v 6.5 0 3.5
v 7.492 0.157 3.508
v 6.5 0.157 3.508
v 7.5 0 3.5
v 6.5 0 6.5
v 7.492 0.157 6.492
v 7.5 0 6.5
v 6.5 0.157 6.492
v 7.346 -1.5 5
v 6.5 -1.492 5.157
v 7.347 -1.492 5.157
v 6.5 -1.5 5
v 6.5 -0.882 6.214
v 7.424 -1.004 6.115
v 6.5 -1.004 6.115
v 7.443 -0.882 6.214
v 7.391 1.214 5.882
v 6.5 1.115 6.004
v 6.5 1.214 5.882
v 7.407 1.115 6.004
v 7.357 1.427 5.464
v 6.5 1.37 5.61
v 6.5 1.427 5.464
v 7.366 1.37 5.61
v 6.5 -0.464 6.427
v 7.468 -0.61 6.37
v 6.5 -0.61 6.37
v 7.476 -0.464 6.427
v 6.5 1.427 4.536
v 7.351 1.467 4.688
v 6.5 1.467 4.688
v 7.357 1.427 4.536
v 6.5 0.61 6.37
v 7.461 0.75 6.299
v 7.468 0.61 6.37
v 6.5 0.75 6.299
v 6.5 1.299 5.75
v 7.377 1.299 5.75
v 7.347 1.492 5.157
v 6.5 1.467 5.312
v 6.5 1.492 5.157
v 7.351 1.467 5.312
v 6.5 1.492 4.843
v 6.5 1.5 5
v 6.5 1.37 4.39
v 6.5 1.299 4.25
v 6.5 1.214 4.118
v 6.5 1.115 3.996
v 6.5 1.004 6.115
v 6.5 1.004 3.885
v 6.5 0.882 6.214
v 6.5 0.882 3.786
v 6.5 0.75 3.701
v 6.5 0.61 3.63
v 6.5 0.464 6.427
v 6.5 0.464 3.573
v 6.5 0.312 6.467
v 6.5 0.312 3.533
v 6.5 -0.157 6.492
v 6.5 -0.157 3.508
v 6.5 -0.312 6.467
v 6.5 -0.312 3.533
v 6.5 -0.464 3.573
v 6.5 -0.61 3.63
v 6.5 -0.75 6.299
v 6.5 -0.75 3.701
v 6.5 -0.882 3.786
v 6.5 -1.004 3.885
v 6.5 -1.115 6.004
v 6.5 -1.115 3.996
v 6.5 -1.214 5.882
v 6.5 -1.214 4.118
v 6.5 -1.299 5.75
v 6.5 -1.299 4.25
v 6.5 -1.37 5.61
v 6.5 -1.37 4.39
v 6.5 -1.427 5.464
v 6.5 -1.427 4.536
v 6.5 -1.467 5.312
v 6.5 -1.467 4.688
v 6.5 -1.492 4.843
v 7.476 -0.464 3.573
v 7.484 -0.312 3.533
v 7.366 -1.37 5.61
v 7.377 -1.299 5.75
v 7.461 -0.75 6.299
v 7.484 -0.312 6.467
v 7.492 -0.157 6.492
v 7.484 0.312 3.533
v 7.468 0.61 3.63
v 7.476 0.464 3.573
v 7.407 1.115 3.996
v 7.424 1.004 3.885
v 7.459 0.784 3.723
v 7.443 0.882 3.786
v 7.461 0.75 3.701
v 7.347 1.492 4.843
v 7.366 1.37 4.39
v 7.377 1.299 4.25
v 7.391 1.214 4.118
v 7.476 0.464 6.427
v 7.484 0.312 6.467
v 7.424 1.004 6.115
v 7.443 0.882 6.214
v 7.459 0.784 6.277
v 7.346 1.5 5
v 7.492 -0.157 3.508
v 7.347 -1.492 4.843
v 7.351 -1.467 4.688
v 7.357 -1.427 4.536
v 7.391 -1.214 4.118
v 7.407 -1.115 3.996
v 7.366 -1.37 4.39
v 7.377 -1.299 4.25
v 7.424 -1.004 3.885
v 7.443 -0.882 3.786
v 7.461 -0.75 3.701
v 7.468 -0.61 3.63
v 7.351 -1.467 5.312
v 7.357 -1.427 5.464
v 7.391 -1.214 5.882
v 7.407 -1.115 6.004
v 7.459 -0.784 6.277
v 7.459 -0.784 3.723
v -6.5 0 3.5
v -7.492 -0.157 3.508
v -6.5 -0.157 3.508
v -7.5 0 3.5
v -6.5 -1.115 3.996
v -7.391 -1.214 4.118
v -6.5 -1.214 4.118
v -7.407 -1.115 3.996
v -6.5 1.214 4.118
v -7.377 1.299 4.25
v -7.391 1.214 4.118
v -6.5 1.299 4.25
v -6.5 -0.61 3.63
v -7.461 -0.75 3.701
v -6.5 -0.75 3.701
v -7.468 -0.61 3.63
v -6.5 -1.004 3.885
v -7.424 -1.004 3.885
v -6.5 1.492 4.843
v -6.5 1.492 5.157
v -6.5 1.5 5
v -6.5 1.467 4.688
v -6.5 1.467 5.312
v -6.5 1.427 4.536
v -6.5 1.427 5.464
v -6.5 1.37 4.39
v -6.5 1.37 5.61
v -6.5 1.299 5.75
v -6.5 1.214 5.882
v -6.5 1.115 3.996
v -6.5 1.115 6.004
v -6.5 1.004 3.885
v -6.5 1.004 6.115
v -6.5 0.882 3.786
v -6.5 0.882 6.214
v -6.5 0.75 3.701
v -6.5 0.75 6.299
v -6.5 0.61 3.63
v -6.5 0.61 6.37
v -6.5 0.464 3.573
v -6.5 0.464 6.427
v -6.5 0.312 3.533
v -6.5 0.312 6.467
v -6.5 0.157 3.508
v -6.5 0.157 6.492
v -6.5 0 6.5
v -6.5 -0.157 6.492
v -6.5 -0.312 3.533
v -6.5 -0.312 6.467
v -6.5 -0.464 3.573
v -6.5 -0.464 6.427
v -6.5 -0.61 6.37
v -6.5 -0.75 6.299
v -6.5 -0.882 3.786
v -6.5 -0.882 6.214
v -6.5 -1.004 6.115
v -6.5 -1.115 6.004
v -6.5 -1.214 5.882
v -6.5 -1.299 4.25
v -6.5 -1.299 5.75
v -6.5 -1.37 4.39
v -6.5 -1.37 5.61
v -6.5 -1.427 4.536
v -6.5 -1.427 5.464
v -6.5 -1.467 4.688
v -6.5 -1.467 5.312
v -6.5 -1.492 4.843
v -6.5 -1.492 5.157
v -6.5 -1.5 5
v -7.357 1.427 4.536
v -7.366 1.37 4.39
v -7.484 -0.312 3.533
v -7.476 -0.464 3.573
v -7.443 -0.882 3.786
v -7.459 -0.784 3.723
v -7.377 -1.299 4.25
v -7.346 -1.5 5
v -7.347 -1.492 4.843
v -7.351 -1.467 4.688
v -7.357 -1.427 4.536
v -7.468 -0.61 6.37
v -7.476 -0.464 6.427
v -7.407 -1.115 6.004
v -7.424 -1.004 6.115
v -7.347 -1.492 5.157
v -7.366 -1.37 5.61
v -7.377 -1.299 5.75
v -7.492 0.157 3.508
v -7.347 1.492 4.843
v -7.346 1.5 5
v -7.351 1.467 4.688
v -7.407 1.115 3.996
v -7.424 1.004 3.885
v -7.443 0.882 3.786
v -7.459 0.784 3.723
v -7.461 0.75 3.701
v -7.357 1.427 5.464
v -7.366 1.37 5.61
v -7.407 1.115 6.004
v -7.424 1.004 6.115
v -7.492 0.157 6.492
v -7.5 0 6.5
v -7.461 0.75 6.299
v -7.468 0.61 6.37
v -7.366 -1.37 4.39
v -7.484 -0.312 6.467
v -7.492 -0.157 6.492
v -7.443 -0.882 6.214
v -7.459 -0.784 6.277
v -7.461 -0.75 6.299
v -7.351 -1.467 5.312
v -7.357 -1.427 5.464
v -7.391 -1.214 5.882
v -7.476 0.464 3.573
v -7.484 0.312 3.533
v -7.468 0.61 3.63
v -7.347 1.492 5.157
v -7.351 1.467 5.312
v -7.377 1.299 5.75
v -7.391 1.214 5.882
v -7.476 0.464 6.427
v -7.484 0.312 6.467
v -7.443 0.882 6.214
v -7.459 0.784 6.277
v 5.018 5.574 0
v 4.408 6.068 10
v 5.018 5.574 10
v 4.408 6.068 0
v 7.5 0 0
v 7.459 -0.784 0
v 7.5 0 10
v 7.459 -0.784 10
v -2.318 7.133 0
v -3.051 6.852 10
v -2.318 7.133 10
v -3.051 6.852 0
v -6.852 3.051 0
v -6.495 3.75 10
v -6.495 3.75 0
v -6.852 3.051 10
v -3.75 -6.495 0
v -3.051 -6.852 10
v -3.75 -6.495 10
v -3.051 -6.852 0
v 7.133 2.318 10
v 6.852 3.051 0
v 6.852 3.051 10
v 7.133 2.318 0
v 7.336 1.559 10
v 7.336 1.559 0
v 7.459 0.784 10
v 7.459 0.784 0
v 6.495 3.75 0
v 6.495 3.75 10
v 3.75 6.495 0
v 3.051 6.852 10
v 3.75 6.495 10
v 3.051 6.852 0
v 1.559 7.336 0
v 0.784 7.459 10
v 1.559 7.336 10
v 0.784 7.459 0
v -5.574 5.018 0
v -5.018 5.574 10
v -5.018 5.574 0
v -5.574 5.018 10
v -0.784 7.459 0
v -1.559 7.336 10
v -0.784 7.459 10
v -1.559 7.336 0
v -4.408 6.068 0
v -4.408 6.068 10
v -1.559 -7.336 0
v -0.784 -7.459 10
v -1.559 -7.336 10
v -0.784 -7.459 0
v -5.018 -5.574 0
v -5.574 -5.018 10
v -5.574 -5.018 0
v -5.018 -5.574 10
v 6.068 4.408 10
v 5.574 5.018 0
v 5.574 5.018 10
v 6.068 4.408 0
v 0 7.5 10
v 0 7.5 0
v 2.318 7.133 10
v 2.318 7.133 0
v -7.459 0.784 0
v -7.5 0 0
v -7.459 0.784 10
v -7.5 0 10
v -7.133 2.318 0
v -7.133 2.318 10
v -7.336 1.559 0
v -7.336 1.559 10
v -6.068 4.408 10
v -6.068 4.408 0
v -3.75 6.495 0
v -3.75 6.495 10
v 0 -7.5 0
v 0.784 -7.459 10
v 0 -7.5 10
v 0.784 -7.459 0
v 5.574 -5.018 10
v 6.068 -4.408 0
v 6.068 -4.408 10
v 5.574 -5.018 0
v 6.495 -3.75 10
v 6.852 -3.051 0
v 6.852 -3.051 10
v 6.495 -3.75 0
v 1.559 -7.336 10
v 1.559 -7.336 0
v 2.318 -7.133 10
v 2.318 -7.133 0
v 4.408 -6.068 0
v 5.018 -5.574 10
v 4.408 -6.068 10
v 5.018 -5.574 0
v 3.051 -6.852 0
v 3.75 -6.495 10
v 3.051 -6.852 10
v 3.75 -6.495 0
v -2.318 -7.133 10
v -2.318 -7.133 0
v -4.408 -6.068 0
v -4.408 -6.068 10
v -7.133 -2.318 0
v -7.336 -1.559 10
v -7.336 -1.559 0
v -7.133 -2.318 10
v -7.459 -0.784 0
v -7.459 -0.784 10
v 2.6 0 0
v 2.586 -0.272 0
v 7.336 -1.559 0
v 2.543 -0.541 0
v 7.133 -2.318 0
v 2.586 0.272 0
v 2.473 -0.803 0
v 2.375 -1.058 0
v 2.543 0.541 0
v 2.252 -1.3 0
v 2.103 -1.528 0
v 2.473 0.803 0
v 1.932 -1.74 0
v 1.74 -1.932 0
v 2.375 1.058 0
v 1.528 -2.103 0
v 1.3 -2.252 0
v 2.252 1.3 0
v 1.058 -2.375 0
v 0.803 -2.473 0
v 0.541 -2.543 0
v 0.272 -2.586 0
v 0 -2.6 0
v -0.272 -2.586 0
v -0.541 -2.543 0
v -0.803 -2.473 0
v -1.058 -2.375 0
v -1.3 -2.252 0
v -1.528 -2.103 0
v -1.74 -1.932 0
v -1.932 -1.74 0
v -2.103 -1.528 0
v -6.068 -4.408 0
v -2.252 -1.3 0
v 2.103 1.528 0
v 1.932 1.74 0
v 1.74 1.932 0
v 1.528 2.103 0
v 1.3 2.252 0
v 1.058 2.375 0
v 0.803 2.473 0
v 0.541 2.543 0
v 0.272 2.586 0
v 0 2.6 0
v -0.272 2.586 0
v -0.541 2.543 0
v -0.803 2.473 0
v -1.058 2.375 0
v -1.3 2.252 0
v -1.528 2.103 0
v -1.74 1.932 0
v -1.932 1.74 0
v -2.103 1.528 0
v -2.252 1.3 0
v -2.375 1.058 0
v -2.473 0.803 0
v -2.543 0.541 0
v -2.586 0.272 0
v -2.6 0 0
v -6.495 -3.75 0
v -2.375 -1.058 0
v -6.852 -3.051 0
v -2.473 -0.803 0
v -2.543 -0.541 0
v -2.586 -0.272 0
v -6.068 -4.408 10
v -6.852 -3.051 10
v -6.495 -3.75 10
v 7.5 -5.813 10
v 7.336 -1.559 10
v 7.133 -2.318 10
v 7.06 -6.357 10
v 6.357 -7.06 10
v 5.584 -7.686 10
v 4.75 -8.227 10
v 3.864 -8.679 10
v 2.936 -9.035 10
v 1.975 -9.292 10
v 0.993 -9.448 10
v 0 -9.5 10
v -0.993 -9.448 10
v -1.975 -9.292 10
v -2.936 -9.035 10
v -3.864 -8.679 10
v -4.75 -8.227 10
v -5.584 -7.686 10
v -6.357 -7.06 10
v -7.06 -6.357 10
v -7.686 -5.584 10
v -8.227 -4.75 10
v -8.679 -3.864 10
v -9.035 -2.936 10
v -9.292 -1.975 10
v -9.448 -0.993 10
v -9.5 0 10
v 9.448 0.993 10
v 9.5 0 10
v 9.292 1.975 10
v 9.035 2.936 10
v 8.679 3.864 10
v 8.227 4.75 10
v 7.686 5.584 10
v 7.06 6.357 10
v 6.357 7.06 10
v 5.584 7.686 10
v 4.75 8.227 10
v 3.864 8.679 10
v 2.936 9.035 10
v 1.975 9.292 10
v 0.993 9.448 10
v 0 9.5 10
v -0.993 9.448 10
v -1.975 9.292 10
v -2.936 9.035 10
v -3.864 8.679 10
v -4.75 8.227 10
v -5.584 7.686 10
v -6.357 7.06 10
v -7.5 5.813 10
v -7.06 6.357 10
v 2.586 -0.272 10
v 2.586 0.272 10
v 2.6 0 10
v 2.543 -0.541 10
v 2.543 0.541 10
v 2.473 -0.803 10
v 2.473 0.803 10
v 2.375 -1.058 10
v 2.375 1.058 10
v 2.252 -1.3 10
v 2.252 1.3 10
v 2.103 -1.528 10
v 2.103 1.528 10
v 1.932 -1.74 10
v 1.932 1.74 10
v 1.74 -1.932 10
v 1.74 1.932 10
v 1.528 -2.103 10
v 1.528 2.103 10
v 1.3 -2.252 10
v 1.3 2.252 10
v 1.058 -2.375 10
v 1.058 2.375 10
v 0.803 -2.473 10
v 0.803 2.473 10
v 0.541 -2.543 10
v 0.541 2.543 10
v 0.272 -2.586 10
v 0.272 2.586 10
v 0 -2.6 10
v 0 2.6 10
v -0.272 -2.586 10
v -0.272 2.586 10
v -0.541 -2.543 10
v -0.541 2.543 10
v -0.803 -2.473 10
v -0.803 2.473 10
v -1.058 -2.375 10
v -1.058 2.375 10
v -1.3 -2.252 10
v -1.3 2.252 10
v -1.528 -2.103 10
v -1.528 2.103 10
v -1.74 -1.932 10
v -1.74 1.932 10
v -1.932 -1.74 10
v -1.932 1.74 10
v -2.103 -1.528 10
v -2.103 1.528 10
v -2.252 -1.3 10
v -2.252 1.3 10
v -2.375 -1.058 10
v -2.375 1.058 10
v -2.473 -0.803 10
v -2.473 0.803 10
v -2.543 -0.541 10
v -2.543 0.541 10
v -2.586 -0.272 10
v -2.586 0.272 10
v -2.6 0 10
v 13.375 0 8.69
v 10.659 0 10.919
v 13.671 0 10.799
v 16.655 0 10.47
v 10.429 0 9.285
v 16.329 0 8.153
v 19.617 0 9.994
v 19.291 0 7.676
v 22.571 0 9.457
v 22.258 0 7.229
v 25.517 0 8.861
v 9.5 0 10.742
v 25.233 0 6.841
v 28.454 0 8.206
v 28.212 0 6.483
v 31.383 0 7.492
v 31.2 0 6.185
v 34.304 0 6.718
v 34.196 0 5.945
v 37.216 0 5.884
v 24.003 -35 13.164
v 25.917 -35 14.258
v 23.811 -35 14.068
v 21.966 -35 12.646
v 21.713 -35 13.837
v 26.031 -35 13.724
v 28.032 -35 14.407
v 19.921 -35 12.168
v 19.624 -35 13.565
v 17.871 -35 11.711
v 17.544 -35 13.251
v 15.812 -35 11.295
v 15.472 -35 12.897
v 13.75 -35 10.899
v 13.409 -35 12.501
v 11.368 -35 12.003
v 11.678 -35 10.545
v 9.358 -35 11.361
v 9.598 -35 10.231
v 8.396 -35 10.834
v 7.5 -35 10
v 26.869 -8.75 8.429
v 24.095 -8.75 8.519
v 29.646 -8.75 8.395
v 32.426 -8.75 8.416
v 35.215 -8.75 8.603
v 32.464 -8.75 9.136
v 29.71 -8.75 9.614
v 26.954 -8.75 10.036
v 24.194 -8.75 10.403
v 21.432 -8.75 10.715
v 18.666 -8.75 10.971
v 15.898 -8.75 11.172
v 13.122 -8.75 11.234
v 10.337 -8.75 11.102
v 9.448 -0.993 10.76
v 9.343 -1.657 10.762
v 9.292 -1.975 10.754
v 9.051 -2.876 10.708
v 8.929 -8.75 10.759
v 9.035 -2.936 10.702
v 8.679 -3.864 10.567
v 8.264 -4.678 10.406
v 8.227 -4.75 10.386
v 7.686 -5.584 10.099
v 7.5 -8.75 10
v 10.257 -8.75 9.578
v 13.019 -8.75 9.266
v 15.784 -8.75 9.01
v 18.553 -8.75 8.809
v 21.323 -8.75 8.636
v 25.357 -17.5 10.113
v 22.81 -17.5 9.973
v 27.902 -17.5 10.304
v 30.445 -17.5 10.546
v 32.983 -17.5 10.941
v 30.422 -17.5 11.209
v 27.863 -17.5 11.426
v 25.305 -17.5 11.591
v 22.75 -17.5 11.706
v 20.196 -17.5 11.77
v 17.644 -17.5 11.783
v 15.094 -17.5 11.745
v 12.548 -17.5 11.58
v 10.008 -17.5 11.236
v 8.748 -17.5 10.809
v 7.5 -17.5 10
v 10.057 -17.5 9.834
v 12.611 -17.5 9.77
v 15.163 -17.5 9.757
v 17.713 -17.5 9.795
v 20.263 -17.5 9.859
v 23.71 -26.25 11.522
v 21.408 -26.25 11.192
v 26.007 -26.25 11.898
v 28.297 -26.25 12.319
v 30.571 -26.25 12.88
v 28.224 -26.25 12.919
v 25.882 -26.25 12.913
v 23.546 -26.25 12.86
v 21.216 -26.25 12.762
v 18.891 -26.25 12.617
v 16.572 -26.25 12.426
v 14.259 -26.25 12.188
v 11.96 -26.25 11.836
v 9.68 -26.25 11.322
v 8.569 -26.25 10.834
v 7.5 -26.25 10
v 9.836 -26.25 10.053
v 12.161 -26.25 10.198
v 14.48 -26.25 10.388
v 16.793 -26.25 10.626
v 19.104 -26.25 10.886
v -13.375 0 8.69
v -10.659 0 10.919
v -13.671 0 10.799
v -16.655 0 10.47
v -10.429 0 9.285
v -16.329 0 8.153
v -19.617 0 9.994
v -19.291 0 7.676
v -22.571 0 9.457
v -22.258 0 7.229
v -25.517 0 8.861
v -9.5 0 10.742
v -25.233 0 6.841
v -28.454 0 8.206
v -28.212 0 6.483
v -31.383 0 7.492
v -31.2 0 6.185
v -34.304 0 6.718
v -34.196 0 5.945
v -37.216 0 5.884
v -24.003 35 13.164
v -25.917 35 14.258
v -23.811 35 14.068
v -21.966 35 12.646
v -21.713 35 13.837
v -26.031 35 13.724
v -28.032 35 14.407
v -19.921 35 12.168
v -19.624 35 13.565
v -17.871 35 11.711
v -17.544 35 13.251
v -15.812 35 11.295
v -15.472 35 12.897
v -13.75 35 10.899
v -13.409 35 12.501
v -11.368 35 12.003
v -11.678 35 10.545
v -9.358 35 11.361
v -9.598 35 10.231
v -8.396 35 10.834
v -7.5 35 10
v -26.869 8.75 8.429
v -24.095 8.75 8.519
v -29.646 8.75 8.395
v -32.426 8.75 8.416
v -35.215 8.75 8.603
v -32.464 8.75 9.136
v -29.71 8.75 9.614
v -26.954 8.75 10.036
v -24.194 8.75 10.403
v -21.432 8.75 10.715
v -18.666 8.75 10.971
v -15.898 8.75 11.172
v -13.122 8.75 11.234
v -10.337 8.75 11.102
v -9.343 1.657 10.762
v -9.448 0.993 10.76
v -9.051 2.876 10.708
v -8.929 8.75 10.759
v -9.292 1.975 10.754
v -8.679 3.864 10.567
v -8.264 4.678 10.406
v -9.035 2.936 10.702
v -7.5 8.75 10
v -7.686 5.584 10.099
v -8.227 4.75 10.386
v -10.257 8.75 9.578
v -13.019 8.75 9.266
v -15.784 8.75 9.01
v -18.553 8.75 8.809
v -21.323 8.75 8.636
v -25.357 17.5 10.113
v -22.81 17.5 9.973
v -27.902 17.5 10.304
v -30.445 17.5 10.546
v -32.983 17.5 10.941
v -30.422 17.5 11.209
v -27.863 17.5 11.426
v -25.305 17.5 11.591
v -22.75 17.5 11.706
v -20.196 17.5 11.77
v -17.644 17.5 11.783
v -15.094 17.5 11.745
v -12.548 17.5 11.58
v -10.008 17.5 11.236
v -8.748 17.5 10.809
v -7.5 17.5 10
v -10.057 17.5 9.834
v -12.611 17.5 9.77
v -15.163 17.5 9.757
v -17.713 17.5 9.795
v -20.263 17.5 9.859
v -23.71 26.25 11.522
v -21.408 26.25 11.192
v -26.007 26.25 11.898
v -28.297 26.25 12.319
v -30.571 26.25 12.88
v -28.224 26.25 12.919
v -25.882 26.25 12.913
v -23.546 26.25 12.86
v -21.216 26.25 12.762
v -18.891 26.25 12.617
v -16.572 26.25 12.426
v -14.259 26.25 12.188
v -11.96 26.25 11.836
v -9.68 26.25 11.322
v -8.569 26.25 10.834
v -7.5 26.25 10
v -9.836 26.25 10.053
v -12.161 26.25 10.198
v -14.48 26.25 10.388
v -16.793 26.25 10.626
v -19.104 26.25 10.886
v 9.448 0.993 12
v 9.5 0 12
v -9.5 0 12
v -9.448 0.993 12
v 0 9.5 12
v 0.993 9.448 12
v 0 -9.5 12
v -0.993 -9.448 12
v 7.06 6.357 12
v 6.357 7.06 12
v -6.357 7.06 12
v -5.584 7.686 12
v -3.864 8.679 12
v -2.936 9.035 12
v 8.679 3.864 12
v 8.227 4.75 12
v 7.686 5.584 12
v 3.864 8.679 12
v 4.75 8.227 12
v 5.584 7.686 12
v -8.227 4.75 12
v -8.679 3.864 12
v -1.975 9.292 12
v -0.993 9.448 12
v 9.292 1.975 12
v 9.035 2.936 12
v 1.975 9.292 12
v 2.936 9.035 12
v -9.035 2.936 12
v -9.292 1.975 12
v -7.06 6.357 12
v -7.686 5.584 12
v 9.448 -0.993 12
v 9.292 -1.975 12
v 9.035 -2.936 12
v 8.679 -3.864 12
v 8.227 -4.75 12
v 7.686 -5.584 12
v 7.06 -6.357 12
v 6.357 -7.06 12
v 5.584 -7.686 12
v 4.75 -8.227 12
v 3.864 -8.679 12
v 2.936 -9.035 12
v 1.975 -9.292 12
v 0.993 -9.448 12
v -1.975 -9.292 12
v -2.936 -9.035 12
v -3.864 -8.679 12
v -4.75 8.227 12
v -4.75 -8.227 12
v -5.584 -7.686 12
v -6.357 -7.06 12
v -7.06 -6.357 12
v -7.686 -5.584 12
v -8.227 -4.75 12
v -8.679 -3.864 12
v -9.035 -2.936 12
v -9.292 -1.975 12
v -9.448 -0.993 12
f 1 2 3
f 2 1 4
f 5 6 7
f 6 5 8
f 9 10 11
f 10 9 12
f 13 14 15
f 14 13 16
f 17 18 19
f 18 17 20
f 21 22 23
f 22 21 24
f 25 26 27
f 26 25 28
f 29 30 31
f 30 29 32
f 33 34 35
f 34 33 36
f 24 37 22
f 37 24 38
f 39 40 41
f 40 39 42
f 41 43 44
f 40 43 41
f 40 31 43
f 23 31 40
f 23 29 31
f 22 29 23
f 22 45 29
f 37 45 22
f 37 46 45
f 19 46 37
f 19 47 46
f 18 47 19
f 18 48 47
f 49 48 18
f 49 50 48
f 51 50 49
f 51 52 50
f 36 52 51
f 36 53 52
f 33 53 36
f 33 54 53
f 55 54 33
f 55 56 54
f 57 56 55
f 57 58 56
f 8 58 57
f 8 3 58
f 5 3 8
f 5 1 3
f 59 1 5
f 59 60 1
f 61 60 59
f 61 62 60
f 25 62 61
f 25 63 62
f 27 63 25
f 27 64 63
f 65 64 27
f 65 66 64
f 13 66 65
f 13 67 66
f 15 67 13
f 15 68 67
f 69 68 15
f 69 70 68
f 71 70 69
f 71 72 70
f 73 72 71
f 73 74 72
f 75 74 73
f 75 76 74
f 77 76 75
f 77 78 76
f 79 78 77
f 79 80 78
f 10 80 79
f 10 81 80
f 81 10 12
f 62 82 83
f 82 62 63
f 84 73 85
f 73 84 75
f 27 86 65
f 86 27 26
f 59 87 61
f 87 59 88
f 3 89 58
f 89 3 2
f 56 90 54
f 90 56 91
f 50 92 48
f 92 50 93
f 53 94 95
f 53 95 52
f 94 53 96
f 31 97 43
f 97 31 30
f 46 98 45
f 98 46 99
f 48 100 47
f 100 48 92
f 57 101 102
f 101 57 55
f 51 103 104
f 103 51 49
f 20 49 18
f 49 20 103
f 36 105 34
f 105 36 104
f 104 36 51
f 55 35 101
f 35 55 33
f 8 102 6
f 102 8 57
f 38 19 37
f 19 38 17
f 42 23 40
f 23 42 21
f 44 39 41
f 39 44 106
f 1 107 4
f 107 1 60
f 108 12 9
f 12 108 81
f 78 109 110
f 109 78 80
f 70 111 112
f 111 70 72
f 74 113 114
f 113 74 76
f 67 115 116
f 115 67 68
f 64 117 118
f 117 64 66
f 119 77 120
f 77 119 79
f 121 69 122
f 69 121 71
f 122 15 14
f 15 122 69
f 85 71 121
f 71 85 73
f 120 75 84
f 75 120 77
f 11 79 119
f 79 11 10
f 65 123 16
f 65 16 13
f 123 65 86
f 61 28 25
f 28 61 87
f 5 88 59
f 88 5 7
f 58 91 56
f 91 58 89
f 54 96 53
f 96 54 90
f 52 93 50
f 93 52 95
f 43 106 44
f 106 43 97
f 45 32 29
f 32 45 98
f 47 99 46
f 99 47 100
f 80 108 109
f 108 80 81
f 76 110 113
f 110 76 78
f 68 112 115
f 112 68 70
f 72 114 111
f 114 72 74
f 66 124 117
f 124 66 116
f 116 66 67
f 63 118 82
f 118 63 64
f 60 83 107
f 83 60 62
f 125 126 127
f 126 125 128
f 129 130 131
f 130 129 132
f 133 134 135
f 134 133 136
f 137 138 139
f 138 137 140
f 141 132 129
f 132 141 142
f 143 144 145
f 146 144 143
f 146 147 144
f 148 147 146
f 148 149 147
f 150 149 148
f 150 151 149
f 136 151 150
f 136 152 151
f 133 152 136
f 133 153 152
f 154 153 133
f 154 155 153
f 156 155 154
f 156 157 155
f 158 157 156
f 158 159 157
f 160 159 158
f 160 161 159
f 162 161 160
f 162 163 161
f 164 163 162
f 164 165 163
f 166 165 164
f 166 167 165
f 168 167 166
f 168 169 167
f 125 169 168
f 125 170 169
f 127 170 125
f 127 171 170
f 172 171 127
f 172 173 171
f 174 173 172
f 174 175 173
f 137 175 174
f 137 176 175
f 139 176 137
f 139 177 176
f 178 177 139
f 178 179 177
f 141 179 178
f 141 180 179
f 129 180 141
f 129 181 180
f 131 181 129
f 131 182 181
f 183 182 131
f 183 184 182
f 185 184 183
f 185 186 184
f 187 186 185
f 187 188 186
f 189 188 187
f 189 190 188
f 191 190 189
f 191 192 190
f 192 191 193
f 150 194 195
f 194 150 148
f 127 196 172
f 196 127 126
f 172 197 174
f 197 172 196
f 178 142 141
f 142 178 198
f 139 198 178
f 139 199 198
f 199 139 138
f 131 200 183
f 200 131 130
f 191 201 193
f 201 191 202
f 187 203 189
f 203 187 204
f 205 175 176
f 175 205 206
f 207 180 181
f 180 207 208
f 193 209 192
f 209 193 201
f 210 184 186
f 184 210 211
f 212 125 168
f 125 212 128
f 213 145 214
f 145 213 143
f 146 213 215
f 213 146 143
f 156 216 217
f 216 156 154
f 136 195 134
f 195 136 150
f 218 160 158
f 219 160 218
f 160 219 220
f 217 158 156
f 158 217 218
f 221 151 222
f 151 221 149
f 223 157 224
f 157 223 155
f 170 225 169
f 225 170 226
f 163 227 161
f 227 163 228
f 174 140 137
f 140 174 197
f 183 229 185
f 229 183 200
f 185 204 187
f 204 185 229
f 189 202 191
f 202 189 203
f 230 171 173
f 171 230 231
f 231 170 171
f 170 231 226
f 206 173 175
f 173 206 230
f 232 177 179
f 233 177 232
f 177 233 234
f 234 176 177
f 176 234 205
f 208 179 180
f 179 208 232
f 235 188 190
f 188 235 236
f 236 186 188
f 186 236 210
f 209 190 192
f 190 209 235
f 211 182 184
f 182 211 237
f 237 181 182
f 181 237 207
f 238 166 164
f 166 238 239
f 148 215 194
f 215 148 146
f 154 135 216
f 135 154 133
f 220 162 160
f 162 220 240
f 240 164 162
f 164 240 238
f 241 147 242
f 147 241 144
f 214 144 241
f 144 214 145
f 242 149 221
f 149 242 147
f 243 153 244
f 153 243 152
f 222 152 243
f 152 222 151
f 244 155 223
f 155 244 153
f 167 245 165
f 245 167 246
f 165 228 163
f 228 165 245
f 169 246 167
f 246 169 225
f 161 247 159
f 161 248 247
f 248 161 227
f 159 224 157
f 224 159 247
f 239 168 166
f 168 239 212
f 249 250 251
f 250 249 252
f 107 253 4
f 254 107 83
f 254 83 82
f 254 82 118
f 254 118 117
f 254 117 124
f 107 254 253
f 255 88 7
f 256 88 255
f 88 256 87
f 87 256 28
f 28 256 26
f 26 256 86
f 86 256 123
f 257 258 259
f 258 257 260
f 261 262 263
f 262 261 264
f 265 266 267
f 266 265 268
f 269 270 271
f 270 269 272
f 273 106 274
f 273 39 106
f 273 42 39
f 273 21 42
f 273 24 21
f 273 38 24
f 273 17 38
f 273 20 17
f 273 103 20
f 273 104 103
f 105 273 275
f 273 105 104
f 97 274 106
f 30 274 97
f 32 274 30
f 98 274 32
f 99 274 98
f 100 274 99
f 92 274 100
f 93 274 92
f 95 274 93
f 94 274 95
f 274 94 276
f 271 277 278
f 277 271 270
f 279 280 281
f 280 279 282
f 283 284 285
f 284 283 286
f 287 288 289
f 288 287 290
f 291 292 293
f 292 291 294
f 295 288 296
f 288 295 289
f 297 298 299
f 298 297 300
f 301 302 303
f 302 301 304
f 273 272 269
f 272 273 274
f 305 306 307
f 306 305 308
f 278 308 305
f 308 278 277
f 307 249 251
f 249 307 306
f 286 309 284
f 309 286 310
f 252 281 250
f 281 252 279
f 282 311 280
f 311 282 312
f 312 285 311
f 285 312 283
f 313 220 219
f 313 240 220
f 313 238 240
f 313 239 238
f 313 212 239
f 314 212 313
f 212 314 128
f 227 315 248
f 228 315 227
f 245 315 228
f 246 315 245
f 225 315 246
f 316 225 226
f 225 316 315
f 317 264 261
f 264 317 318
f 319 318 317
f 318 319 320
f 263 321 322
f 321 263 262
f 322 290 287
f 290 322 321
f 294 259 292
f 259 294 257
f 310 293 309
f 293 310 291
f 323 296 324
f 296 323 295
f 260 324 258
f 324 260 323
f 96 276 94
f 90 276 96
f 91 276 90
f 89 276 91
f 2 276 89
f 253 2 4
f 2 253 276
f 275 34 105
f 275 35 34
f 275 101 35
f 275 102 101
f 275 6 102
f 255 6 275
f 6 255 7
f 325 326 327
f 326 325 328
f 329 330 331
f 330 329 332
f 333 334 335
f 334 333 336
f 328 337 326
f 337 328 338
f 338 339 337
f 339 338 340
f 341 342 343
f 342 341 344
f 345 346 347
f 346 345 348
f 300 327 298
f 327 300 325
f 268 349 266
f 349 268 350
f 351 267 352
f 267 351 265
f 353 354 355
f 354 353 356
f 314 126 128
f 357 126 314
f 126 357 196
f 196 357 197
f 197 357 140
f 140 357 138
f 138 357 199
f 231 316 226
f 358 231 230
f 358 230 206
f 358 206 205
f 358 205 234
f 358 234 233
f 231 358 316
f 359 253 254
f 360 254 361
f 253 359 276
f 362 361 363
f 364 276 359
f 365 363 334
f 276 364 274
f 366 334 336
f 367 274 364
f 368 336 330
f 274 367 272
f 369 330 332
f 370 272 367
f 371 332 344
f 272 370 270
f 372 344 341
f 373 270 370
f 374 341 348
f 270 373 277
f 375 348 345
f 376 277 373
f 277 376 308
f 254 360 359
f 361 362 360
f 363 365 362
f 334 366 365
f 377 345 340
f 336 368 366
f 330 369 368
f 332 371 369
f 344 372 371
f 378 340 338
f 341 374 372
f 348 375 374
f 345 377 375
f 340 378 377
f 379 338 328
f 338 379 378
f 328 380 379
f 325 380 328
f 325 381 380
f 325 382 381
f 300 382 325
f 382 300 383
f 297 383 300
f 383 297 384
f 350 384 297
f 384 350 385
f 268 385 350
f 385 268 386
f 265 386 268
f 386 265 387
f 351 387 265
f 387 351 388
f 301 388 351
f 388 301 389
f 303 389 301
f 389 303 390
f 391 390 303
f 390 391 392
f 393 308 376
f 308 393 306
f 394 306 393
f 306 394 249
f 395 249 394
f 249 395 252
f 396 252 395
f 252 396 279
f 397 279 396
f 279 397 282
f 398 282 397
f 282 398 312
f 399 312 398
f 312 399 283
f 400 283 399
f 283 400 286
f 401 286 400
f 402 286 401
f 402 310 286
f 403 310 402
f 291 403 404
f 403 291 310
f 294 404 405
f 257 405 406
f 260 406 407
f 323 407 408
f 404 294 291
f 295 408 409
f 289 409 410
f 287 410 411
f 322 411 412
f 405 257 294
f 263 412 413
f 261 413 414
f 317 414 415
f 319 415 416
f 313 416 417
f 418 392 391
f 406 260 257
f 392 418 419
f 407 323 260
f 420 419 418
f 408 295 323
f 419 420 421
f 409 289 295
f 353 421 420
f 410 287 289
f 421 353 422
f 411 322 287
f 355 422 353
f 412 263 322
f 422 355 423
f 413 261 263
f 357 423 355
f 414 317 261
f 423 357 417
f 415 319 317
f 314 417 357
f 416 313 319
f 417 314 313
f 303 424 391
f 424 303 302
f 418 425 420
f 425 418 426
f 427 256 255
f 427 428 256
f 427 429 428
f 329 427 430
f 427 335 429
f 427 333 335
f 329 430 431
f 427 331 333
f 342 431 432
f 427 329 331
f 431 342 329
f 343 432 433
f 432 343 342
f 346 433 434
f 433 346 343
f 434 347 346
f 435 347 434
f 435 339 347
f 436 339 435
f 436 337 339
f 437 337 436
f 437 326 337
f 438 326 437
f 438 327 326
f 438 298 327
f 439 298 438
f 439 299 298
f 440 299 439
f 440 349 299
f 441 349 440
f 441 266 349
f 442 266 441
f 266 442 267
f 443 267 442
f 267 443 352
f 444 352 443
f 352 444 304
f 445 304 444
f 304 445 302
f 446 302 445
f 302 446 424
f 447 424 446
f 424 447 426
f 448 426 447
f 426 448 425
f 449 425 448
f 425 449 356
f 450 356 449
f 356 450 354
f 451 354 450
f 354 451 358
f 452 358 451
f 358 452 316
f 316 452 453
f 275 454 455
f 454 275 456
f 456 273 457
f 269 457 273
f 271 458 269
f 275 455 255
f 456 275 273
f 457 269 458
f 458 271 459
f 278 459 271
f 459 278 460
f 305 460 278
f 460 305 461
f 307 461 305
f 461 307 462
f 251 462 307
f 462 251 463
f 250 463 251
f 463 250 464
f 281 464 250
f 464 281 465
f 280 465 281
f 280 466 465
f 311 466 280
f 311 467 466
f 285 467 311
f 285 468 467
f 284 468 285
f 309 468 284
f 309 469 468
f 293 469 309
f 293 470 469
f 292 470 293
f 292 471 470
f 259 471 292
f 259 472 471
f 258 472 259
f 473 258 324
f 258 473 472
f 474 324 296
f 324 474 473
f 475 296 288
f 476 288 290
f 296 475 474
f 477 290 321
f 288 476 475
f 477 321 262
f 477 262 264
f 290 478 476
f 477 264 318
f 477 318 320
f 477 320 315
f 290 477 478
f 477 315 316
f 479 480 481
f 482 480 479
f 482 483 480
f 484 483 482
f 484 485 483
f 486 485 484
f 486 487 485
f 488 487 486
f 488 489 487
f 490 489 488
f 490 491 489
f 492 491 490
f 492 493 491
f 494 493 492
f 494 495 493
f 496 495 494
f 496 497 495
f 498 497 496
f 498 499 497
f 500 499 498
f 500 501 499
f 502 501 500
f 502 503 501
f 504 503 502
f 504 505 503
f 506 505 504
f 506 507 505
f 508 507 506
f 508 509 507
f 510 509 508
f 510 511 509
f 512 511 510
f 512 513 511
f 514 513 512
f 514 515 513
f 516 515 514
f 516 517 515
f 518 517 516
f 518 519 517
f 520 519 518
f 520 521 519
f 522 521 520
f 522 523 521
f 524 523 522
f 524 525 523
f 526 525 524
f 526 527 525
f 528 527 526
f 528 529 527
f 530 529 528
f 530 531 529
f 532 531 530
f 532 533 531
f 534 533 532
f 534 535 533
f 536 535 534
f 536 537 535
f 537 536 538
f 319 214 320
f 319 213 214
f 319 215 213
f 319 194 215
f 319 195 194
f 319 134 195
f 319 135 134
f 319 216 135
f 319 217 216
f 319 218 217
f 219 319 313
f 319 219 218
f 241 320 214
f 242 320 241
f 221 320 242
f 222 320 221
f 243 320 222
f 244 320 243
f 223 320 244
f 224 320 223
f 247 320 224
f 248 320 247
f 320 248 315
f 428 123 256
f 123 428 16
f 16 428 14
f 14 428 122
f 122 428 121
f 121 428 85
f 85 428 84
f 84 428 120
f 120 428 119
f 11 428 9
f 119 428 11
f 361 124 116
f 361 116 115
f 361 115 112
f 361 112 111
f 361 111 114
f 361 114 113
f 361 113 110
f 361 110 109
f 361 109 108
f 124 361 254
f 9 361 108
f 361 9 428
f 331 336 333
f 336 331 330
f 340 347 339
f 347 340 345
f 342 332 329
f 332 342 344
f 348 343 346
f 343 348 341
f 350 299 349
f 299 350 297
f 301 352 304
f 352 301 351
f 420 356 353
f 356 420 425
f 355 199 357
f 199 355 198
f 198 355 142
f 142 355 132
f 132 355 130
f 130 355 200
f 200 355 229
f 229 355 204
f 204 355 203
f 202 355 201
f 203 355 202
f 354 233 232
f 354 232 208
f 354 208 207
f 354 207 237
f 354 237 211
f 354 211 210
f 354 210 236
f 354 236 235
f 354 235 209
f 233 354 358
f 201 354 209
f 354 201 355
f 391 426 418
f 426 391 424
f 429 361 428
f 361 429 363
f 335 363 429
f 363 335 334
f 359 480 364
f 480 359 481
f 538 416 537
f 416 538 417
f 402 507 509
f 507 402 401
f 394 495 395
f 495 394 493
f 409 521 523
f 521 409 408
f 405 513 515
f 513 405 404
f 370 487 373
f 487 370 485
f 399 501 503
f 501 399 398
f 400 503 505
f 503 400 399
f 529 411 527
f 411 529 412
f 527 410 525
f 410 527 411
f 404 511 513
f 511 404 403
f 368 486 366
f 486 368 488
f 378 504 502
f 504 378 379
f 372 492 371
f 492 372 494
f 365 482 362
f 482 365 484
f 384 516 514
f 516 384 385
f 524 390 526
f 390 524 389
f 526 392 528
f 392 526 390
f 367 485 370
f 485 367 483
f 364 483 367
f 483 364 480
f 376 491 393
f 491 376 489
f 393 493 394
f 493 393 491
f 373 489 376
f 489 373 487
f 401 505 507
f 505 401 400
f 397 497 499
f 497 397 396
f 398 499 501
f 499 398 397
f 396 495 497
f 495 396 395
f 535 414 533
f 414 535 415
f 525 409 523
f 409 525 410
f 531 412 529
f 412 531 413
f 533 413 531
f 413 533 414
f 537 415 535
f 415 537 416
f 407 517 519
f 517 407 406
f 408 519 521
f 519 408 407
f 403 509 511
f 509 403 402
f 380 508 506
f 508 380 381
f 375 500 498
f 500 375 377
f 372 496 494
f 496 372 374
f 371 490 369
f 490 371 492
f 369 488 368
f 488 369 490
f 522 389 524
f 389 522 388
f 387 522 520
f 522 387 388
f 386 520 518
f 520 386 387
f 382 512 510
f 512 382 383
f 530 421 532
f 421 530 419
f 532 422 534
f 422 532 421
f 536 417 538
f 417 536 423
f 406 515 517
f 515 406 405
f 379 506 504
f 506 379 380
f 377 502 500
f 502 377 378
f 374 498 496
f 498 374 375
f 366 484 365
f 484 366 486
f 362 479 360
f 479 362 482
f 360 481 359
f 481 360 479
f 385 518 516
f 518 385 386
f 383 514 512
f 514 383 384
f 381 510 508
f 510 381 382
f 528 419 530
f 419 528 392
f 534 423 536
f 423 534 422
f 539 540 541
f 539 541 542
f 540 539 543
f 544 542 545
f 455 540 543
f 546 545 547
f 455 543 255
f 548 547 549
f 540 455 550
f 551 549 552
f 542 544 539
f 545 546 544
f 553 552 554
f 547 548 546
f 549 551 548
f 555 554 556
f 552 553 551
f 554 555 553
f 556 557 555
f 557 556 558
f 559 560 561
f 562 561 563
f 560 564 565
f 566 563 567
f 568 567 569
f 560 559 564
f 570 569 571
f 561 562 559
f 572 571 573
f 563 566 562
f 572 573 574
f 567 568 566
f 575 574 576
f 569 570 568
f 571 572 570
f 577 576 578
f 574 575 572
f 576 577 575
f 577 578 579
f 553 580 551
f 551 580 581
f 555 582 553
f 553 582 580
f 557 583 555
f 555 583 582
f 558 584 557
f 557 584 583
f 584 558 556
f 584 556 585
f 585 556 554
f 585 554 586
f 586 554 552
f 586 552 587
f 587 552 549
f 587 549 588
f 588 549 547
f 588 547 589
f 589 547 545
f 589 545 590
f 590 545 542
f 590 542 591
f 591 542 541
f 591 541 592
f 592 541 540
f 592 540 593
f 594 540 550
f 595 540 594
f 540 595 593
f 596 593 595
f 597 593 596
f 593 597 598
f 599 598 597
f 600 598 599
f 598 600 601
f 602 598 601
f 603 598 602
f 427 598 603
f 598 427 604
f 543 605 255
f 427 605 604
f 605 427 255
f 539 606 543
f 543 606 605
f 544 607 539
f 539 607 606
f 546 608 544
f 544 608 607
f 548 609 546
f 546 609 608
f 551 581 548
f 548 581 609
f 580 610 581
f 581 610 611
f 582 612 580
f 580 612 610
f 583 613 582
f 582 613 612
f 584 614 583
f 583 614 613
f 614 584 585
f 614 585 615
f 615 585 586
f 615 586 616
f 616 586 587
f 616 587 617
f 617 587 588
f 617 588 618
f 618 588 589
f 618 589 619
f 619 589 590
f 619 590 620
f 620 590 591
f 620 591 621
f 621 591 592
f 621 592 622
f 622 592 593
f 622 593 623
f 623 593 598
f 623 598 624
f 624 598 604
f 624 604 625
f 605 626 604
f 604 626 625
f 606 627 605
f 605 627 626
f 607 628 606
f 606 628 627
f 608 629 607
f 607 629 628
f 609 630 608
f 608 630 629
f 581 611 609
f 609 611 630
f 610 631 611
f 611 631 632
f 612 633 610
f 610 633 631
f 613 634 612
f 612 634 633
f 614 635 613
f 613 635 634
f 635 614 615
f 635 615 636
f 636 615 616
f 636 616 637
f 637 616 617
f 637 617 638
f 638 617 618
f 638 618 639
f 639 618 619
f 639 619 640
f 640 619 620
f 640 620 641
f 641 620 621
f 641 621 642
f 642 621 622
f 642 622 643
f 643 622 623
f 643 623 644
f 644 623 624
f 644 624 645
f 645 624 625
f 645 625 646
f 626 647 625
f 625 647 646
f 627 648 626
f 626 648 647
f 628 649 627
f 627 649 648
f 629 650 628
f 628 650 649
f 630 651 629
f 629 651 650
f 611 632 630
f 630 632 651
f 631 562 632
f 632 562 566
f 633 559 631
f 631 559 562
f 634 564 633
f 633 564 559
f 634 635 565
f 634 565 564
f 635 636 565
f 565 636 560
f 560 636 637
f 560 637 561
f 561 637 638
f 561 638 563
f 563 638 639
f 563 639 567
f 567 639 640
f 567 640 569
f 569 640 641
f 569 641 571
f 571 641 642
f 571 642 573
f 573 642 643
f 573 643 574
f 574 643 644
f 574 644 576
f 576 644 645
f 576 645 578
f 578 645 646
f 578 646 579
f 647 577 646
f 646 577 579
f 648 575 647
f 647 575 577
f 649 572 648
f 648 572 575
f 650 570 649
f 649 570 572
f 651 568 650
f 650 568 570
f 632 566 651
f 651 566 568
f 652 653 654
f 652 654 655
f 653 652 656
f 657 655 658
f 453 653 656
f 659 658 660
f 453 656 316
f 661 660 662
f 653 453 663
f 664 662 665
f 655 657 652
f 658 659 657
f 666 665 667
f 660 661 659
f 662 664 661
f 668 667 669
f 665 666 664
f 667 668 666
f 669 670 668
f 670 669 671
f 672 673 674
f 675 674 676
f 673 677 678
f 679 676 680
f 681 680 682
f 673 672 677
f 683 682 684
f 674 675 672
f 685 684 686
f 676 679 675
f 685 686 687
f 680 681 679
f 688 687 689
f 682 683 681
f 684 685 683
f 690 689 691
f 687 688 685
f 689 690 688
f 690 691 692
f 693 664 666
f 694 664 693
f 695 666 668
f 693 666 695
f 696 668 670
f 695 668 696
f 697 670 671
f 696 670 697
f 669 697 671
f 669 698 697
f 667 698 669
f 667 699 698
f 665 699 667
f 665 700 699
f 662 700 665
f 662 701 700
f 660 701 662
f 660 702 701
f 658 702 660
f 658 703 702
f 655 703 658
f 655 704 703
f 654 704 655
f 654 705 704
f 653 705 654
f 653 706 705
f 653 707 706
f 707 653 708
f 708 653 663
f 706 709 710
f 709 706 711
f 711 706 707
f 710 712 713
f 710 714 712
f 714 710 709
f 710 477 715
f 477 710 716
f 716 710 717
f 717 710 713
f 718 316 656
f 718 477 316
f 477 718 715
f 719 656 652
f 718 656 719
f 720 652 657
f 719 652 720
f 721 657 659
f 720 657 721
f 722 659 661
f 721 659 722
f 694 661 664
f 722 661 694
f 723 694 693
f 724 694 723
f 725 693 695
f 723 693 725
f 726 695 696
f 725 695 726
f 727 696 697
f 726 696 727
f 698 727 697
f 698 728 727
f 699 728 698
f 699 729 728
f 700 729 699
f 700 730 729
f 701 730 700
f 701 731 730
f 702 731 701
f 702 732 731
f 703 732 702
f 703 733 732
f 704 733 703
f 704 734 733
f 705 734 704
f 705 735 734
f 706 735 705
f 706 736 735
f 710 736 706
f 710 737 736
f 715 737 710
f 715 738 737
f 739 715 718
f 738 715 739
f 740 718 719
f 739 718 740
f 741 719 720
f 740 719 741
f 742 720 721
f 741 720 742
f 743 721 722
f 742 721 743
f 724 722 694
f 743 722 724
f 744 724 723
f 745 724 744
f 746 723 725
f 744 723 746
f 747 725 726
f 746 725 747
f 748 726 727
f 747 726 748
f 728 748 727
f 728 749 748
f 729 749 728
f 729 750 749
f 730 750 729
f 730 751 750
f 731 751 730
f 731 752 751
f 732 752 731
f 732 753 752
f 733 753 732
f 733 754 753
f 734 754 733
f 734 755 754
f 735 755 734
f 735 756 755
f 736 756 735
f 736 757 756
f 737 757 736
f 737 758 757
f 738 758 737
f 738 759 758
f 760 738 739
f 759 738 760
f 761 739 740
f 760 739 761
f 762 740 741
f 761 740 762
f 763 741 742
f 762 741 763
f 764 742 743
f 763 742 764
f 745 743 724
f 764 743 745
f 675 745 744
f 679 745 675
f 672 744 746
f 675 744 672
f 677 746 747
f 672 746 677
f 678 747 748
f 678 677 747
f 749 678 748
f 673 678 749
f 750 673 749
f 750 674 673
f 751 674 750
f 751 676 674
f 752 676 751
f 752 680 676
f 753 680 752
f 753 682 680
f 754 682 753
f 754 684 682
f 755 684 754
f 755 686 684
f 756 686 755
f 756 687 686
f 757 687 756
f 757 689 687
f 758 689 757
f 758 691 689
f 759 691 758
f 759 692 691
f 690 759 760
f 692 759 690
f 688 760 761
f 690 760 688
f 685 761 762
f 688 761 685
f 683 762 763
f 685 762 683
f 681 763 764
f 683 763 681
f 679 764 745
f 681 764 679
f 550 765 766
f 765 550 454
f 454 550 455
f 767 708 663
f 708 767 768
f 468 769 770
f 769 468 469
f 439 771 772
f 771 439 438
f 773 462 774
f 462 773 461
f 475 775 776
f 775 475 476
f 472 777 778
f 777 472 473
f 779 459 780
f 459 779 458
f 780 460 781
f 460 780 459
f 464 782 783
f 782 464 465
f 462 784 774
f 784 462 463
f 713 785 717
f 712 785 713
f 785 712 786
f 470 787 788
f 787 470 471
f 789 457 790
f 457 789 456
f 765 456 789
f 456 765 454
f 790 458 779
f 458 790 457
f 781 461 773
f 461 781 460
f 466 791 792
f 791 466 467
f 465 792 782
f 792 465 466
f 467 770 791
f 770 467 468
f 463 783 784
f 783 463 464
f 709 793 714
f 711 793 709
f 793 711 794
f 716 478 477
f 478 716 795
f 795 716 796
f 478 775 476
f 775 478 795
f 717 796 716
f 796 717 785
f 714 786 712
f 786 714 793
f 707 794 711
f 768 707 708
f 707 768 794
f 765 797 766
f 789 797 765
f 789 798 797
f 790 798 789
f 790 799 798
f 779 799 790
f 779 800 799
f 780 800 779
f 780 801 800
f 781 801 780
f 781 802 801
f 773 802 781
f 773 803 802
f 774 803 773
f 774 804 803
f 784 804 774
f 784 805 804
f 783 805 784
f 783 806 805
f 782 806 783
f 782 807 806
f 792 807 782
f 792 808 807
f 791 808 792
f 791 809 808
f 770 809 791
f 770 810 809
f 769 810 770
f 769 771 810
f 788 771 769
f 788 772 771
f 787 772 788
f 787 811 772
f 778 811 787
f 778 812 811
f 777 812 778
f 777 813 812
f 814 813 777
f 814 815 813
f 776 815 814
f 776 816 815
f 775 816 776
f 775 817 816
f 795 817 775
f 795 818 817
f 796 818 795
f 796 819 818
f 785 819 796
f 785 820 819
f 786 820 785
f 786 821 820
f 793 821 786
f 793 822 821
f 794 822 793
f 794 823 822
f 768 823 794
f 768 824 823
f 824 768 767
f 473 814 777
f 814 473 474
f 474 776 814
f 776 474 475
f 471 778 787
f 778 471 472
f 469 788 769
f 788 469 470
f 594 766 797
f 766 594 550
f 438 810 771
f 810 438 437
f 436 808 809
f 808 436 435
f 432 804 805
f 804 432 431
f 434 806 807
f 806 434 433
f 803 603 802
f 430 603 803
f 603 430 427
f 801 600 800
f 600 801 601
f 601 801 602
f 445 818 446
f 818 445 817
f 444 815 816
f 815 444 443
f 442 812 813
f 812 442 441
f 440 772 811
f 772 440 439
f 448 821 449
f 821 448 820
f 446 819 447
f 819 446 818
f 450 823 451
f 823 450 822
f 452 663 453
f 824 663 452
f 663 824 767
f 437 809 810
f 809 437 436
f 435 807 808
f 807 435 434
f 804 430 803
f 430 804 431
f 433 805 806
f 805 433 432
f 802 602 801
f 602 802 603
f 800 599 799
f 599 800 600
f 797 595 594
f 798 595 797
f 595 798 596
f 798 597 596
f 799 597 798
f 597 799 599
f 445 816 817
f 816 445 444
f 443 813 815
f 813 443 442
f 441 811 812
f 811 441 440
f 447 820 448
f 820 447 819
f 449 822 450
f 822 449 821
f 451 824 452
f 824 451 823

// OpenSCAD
/*
 * COMPLETE MOTOR + IMPELLER ASSEMBLY
 * For CFD fluid testing and visualization
 * 
 * This model includes:
 *   - Brushless motor (2204-2206 size)
 *   - Motor shaft (5mm)
 *   - Impeller hub
 *   - 3 impeller variants (bladeless, AI-blades, hybrid)
 *   - Mounting plate
 * 
 * Usage:
 *   - Render full assembly: F6
 *   - Export for CFD: Set EXPORT_MODE = "impeller_only"
 *   - Change design: Set IMPELLER_TYPE = "bladeless" | "bladed" | "hybrid"
 */

// ============================================================================
// CONFIGURATION PARAMETERS (AI-Optimizable)
// ============================================================================

// General Settings
$fn = 60;  // Resolution for CFD export (increase to 100 for final)

// Export Mode
EXPORT_MODE = "impeller_only";  // Options: "full_assembly", "impeller_only", "motor_only"

// Impeller Type
IMPELLER_TYPE = "bladed";  // Options: "bladeless", "bladed", "hybrid"

// Motor Specifications (2204-2206 brushless)
MOTOR_DIAMETER = 28;         // mm
MOTOR_HEIGHT = 25;           // mm
MOTOR_SHAFT_DIAMETER = 5;    // mm (standard)
MOTOR_SHAFT_LENGTH = 15;     // mm (extends above motor)
MOTOR_MOUNT_PATTERN = 16;    // mm (16x16 or 19x19 common)
MOTOR_SCREW_DIAMETER = 3;    // M3 screws

// Impeller Parameters - BLADELESS
BLADELESS_OUTER_DIAMETER = 90;    // mm
BLADELESS_AIR_GAP = 0.8;          // mm (optimize: 0.6-1.2)
BLADELESS_THROAT_RATIO = 0.72;    // (optimize: 0.65-0.80)
BLADELESS_EXPANSION_ANGLE = 18;   // degrees (optimize: 12-25)
BLADELESS_RING_THICKNESS = 3;     // mm (optimize: 2-4)
BLADELESS_HEIGHT = 24;            // mm

// Impeller Parameters - BLADED
BLADED_DIAMETER = 85;
BLADED_HUB_DIAMETER = 15;         // mm (optimize: 12-20)
BLADED_BLADE_COUNT = 2;
BLADED_ROOT_CHORD = 30;
BLADED_TIP_CHORD_RATIO = 0.7;    // (optimize: 0.6-0.8)
BLADED_BLADE_THICKNESS = 2;       // mm (optimize: 1.5-3)
BLADED_BLADE_TWIST = -20;
BLADED_ATTACK_ANGLE = -8;
BLADED_BLADE_HEIGHT = 12;         // mm (optimize: 10-15)

// Hub Parameters
HUB_DIAMETER = 15;
HUB_HEIGHT = 10;
HUB_SET_SCREW_DIAMETER = 3;  // M3 set screw

// Mounting Plate
PLATE_SIZE = 50;
PLATE_THICKNESS = 3;

// ============================================================================
// MOTOR MODEL
// ============================================================================

module brushless_motor_2204() {
    color("DarkSlateGray") {
        // Motor can (bell)
        difference() {
            cylinder(h=MOTOR_HEIGHT, d=MOTOR_DIAMETER);
            
            // Hollow inside (weight reduction visualization)
            translate([0, 0, -0.5])
                cylinder(h=MOTOR_HEIGHT - 5, d=MOTOR_DIAMETER - 4);
            
            // Mounting holes
            for(i = [0:3]) {
                rotate([0, 0, i * 90])
                    translate([MOTOR_MOUNT_PATTERN/2, 0, MOTOR_HEIGHT/2])
                        rotate([90, 0, 0])
                            cylinder(h=MOTOR_DIAMETER, d=MOTOR_SCREW_DIAMETER, center=true);
            }
        }
        
        // Motor base
        translate([0, 0, -3])
            cylinder(h=3, d=MOTOR_DIAMETER - 2);
    }
    
    // Motor shaft
    color("Silver")
        translate([0, 0, MOTOR_HEIGHT])
            cylinder(h=MOTOR_SHAFT_LENGTH, d=MOTOR_SHAFT_DIAMETER);
    
    // Shaft tip (for hub attachment)
    color("Silver")
        translate([0, 0, MOTOR_HEIGHT + MOTOR_SHAFT_LENGTH])
            cylinder(h=2, d=MOTOR_SHAFT_DIAMETER - 0.5);
}

// ============================================================================
// IMPELLER HUB
// ============================================================================

module impeller_hub() {
    color("Gray")
    difference() {
        // Hub body
        cylinder(h=HUB_HEIGHT, d=HUB_DIAMETER);
        
        // Shaft hole (5mm + 0.2mm clearance)
        translate([0, 0, -0.5])
            cylinder(h=HUB_HEIGHT + 1, d=MOTOR_SHAFT_DIAMETER + 0.2);
        
        // Set screw holes (2x for balance)
        for(i = [0:1]) {
            rotate([0, 0, i * 180])
                translate([HUB_DIAMETER/2 - 1, 0, HUB_HEIGHT/2])
                    rotate([0, 90, 0])
                        cylinder(h=5, d=HUB_SET_SCREW_DIAMETER);
        }
    }
}

// ============================================================================
// BLADELESS IMPELLER (Dyson-style)
// ============================================================================

module bladeless_impeller() {
    outer_r = BLADELESS_OUTER_DIAMETER / 2;
    throat_r = outer_r * BLADELESS_THROAT_RATIO;
    gap = BLADELESS_AIR_GAP;
    
    color("SkyBlue", 0.7)
    difference() {
        // Outer ring
        rotate_extrude()
            translate([outer_r - BLADELESS_RING_THICKNESS/2, BLADELESS_HEIGHT/2, 0])
                circle(d=BLADELESS_RING_THICKNESS + BLADELESS_HEIGHT);
        
        // Inner air gap (critical for Coanda effect)
        rotate_extrude()
            translate([outer_r - gap - BLADELESS_RING_THICKNESS/2, BLADELESS_HEIGHT/2, 0])
                circle(d=BLADELESS_RING_THICKNESS + BLADELESS_HEIGHT - 2*gap);
    }
    
    // Base plate (connects to hub)
    color("SkyBlue", 0.7)
    translate([0, 0, -2])
        difference() {
            cylinder(h=2, d=outer_r * 2);
            translate([0, 0, -0.5])
                cylinder(h=3, d=HUB_DIAMETER + 1);
        }
    
    // Air inlet (bell-shaped for smooth flow)
    color("SkyBlue", 0.7)
    translate([0, 0, -2]) {
        difference() {
            cylinder(h=15, d1=throat_r * 2, d2=outer_r * 1.8);
            translate([0, 0, -0.5])
                cylinder(h=16, d1=throat_r * 2 - 3, d2=outer_r * 1.8 - 3);
        }
    }
}

// ============================================================================
// AI-OPTIMIZED BLADED IMPELLER (NACA 2412 profile)
// ============================================================================

module naca_2412_blade(chord, height, twist_angle, attack_angle) {
    // Simplified NACA 2412 airfoil profile
    // Using parametric approximation for 3D printing
    
    color("LightSteelBlue", 0.8)
    linear_extrude(height=height, twist=twist_angle, scale=BLADED_TIP_CHORD_RATIO) {
        rotate([0, 0, attack_angle])
        polygon([
            // Upper surface (cambered)
            [0, 0],
            [chord * 0.05, chord * 0.03],
            [chord * 0.1, chord * 0.045],
            [chord * 0.2, chord * 0.055],
            [chord * 0.3, chord * 0.058],
            [chord * 0.4, chord * 0.056],
            [chord * 0.5, chord * 0.052],
            [chord * 0.6, chord * 0.046],
            [chord * 0.7, chord * 0.038],
            [chord * 0.8, chord * 0.028],
            [chord * 0.9, chord * 0.016],
            [chord * 1.0, chord * 0.002],
            // Lower surface (less cambered)
            [chord * 0.9, -chord * 0.010],
            [chord * 0.8, -chord * 0.016],
            [chord * 0.7, -chord * 0.020],
            [chord * 0.6, -chord * 0.022],
            [chord * 0.5, -chord * 0.023],
            [chord * 0.4, -chord * 0.022],
            [chord * 0.3, -chord * 0.020],
            [chord * 0.2, -chord * 0.016],
            [chord * 0.1, -chord * 0.010],
            [chord * 0.05, -chord * 0.005],
        ]);
    }
}

module bladed_impeller() {
    // Blades
    for(i = [0 : BLADED_BLADE_COUNT - 1]) {
        rotate([0, 0, i * (360 / BLADED_BLADE_COUNT)])
            translate([BLADED_HUB_DIAMETER/2, 0, 0])
                rotate([90, 0, 0])
                    naca_2412_blade(
                        BLADED_ROOT_CHORD, 
                        (BLADED_DIAMETER - BLADED_HUB_DIAMETER) / 2,
                        BLADED_BLADE_TWIST,
                        BLADED_ATTACK_ANGLE
                    );
    }
    
    // Hub disk (connects blades)
    color("LightSteelBlue", 0.8)
    cylinder(h=2, d=BLADED_HUB_DIAMETER + 4);
}

// ============================================================================
// HYBRID IMPELLER (Blades inside bladeless ring)
// ============================================================================

module hybrid_impeller() {
    // Outer bladeless ring
    bladeless_impeller();
    
    // Inner bladed impeller (scaled down to fit)
    scale([0.85, 0.85, 1])
        bladed_impeller();
}

// ============================================================================
// MOUNTING PLATE
// ============================================================================

module mounting_plate() {
    color("DimGray")
    difference() {
        // Base plate
        translate([-PLATE_SIZE/2, -PLATE_SIZE/2, 0])
            cube([PLATE_SIZE, PLATE_SIZE, PLATE_THICKNESS]);
        
        // Center hole for motor shaft
        translate([0, 0, -0.5])
            cylinder(h=PLATE_THICKNESS + 1, d=MOTOR_DIAMETER + 2);
        
        // Motor mounting holes
        for(i = [0:3]) {
            rotate([0, 0, i * 90])
                translate([MOTOR_MOUNT_PATTERN/2, 0, -0.5])
                    cylinder(h=PLATE_THICKNESS + 1, d=MOTOR_SCREW_DIAMETER);
        }
    }
}

// ============================================================================
// COMPLETE ASSEMBLY
// ============================================================================

module complete_assembly() {
    // Mounting plate (bottom)
    translate([0, 0, -PLATE_THICKNESS])
        mounting_plate();
    
    // Motor
    translate([0, 0, 0])
        brushless_motor_2204();
    
    // Hub (on shaft)
    translate([0, 0, MOTOR_HEIGHT + MOTOR_SHAFT_LENGTH - 2])
        impeller_hub();
    
    // Impeller (on hub)
    translate([0, 0, MOTOR_HEIGHT + MOTOR_SHAFT_LENGTH + HUB_HEIGHT]) {
        if (IMPELLER_TYPE == "bladeless") {
            bladeless_impeller();
        } else if (IMPELLER_TYPE == "bladed") {
            bladed_impeller();
        } else if (IMPELLER_TYPE == "hybrid") {
            hybrid_impeller();
        }
    }
}

// ============================================================================
// RENDER BASED ON EXPORT MODE
// ============================================================================

if (EXPORT_MODE == "full_assembly") {
    complete_assembly();
} 
else if (EXPORT_MODE == "impeller_only") {
    // For CFD testing - impeller + hub only
    impeller_hub();
    translate([0, 0, HUB_HEIGHT]) {
        if (IMPELLER_TYPE == "bladeless") {
            bladeless_impeller();
        } else if (IMPELLER_TYPE == "bladed") {
            bladed_impeller();
        } else if (IMPELLER_TYPE == "hybrid") {
            hybrid_impeller();
        }
    }
}
else if (EXPORT_MODE == "motor_only") {
    brushless_motor_2204();
}

// ============================================================================
// ANNOTATIONS FOR VISUALIZATION
// ============================================================================

// Uncomment to show dimensions
/*
color("Red", 0.3)
translate([BLADED_DIAMETER/2 + 10, 0, 20])
    text(str("Ø", BLADED_DIAMETER, "mm"), size=5, halign="left");

color("Green", 0.3)
translate([0, BLADED_DIAMETER/2 + 10, 20])
    text(str(BLADED_BLADE_COUNT, " blades"), size=5, halign="center");
*/

// ============================================================================
// EXPORT NOTES
// ============================================================================

/*
 * TO EXPORT FOR CFD TESTING:
 * 
 * 1. Set EXPORT_MODE = "impeller_only"
 * 2. Set IMPELLER_TYPE = "bladeless" (or "bladed" or "hybrid")
 * 3. Press F6 to render
 * 4. File → Export → Export as STL
 * 5. Use filename: impeller_bladeless_fn60.stl
 * 
 * FOR OPTIMIZATION:
 * - Modify parameters at top (marked with "optimize:")
 * - Re-render and export
 * - Upload to SimScale for CFD
 * - Compare results
 * 
 * RECOMMENDED CFD SETTINGS:
 * - Solver: k-omega SST
 * - RPM: 5000, 7000, 9000
 * - Mesh: 3-5M cells
 * - Boundary: Rotating zone on impeller
 */
